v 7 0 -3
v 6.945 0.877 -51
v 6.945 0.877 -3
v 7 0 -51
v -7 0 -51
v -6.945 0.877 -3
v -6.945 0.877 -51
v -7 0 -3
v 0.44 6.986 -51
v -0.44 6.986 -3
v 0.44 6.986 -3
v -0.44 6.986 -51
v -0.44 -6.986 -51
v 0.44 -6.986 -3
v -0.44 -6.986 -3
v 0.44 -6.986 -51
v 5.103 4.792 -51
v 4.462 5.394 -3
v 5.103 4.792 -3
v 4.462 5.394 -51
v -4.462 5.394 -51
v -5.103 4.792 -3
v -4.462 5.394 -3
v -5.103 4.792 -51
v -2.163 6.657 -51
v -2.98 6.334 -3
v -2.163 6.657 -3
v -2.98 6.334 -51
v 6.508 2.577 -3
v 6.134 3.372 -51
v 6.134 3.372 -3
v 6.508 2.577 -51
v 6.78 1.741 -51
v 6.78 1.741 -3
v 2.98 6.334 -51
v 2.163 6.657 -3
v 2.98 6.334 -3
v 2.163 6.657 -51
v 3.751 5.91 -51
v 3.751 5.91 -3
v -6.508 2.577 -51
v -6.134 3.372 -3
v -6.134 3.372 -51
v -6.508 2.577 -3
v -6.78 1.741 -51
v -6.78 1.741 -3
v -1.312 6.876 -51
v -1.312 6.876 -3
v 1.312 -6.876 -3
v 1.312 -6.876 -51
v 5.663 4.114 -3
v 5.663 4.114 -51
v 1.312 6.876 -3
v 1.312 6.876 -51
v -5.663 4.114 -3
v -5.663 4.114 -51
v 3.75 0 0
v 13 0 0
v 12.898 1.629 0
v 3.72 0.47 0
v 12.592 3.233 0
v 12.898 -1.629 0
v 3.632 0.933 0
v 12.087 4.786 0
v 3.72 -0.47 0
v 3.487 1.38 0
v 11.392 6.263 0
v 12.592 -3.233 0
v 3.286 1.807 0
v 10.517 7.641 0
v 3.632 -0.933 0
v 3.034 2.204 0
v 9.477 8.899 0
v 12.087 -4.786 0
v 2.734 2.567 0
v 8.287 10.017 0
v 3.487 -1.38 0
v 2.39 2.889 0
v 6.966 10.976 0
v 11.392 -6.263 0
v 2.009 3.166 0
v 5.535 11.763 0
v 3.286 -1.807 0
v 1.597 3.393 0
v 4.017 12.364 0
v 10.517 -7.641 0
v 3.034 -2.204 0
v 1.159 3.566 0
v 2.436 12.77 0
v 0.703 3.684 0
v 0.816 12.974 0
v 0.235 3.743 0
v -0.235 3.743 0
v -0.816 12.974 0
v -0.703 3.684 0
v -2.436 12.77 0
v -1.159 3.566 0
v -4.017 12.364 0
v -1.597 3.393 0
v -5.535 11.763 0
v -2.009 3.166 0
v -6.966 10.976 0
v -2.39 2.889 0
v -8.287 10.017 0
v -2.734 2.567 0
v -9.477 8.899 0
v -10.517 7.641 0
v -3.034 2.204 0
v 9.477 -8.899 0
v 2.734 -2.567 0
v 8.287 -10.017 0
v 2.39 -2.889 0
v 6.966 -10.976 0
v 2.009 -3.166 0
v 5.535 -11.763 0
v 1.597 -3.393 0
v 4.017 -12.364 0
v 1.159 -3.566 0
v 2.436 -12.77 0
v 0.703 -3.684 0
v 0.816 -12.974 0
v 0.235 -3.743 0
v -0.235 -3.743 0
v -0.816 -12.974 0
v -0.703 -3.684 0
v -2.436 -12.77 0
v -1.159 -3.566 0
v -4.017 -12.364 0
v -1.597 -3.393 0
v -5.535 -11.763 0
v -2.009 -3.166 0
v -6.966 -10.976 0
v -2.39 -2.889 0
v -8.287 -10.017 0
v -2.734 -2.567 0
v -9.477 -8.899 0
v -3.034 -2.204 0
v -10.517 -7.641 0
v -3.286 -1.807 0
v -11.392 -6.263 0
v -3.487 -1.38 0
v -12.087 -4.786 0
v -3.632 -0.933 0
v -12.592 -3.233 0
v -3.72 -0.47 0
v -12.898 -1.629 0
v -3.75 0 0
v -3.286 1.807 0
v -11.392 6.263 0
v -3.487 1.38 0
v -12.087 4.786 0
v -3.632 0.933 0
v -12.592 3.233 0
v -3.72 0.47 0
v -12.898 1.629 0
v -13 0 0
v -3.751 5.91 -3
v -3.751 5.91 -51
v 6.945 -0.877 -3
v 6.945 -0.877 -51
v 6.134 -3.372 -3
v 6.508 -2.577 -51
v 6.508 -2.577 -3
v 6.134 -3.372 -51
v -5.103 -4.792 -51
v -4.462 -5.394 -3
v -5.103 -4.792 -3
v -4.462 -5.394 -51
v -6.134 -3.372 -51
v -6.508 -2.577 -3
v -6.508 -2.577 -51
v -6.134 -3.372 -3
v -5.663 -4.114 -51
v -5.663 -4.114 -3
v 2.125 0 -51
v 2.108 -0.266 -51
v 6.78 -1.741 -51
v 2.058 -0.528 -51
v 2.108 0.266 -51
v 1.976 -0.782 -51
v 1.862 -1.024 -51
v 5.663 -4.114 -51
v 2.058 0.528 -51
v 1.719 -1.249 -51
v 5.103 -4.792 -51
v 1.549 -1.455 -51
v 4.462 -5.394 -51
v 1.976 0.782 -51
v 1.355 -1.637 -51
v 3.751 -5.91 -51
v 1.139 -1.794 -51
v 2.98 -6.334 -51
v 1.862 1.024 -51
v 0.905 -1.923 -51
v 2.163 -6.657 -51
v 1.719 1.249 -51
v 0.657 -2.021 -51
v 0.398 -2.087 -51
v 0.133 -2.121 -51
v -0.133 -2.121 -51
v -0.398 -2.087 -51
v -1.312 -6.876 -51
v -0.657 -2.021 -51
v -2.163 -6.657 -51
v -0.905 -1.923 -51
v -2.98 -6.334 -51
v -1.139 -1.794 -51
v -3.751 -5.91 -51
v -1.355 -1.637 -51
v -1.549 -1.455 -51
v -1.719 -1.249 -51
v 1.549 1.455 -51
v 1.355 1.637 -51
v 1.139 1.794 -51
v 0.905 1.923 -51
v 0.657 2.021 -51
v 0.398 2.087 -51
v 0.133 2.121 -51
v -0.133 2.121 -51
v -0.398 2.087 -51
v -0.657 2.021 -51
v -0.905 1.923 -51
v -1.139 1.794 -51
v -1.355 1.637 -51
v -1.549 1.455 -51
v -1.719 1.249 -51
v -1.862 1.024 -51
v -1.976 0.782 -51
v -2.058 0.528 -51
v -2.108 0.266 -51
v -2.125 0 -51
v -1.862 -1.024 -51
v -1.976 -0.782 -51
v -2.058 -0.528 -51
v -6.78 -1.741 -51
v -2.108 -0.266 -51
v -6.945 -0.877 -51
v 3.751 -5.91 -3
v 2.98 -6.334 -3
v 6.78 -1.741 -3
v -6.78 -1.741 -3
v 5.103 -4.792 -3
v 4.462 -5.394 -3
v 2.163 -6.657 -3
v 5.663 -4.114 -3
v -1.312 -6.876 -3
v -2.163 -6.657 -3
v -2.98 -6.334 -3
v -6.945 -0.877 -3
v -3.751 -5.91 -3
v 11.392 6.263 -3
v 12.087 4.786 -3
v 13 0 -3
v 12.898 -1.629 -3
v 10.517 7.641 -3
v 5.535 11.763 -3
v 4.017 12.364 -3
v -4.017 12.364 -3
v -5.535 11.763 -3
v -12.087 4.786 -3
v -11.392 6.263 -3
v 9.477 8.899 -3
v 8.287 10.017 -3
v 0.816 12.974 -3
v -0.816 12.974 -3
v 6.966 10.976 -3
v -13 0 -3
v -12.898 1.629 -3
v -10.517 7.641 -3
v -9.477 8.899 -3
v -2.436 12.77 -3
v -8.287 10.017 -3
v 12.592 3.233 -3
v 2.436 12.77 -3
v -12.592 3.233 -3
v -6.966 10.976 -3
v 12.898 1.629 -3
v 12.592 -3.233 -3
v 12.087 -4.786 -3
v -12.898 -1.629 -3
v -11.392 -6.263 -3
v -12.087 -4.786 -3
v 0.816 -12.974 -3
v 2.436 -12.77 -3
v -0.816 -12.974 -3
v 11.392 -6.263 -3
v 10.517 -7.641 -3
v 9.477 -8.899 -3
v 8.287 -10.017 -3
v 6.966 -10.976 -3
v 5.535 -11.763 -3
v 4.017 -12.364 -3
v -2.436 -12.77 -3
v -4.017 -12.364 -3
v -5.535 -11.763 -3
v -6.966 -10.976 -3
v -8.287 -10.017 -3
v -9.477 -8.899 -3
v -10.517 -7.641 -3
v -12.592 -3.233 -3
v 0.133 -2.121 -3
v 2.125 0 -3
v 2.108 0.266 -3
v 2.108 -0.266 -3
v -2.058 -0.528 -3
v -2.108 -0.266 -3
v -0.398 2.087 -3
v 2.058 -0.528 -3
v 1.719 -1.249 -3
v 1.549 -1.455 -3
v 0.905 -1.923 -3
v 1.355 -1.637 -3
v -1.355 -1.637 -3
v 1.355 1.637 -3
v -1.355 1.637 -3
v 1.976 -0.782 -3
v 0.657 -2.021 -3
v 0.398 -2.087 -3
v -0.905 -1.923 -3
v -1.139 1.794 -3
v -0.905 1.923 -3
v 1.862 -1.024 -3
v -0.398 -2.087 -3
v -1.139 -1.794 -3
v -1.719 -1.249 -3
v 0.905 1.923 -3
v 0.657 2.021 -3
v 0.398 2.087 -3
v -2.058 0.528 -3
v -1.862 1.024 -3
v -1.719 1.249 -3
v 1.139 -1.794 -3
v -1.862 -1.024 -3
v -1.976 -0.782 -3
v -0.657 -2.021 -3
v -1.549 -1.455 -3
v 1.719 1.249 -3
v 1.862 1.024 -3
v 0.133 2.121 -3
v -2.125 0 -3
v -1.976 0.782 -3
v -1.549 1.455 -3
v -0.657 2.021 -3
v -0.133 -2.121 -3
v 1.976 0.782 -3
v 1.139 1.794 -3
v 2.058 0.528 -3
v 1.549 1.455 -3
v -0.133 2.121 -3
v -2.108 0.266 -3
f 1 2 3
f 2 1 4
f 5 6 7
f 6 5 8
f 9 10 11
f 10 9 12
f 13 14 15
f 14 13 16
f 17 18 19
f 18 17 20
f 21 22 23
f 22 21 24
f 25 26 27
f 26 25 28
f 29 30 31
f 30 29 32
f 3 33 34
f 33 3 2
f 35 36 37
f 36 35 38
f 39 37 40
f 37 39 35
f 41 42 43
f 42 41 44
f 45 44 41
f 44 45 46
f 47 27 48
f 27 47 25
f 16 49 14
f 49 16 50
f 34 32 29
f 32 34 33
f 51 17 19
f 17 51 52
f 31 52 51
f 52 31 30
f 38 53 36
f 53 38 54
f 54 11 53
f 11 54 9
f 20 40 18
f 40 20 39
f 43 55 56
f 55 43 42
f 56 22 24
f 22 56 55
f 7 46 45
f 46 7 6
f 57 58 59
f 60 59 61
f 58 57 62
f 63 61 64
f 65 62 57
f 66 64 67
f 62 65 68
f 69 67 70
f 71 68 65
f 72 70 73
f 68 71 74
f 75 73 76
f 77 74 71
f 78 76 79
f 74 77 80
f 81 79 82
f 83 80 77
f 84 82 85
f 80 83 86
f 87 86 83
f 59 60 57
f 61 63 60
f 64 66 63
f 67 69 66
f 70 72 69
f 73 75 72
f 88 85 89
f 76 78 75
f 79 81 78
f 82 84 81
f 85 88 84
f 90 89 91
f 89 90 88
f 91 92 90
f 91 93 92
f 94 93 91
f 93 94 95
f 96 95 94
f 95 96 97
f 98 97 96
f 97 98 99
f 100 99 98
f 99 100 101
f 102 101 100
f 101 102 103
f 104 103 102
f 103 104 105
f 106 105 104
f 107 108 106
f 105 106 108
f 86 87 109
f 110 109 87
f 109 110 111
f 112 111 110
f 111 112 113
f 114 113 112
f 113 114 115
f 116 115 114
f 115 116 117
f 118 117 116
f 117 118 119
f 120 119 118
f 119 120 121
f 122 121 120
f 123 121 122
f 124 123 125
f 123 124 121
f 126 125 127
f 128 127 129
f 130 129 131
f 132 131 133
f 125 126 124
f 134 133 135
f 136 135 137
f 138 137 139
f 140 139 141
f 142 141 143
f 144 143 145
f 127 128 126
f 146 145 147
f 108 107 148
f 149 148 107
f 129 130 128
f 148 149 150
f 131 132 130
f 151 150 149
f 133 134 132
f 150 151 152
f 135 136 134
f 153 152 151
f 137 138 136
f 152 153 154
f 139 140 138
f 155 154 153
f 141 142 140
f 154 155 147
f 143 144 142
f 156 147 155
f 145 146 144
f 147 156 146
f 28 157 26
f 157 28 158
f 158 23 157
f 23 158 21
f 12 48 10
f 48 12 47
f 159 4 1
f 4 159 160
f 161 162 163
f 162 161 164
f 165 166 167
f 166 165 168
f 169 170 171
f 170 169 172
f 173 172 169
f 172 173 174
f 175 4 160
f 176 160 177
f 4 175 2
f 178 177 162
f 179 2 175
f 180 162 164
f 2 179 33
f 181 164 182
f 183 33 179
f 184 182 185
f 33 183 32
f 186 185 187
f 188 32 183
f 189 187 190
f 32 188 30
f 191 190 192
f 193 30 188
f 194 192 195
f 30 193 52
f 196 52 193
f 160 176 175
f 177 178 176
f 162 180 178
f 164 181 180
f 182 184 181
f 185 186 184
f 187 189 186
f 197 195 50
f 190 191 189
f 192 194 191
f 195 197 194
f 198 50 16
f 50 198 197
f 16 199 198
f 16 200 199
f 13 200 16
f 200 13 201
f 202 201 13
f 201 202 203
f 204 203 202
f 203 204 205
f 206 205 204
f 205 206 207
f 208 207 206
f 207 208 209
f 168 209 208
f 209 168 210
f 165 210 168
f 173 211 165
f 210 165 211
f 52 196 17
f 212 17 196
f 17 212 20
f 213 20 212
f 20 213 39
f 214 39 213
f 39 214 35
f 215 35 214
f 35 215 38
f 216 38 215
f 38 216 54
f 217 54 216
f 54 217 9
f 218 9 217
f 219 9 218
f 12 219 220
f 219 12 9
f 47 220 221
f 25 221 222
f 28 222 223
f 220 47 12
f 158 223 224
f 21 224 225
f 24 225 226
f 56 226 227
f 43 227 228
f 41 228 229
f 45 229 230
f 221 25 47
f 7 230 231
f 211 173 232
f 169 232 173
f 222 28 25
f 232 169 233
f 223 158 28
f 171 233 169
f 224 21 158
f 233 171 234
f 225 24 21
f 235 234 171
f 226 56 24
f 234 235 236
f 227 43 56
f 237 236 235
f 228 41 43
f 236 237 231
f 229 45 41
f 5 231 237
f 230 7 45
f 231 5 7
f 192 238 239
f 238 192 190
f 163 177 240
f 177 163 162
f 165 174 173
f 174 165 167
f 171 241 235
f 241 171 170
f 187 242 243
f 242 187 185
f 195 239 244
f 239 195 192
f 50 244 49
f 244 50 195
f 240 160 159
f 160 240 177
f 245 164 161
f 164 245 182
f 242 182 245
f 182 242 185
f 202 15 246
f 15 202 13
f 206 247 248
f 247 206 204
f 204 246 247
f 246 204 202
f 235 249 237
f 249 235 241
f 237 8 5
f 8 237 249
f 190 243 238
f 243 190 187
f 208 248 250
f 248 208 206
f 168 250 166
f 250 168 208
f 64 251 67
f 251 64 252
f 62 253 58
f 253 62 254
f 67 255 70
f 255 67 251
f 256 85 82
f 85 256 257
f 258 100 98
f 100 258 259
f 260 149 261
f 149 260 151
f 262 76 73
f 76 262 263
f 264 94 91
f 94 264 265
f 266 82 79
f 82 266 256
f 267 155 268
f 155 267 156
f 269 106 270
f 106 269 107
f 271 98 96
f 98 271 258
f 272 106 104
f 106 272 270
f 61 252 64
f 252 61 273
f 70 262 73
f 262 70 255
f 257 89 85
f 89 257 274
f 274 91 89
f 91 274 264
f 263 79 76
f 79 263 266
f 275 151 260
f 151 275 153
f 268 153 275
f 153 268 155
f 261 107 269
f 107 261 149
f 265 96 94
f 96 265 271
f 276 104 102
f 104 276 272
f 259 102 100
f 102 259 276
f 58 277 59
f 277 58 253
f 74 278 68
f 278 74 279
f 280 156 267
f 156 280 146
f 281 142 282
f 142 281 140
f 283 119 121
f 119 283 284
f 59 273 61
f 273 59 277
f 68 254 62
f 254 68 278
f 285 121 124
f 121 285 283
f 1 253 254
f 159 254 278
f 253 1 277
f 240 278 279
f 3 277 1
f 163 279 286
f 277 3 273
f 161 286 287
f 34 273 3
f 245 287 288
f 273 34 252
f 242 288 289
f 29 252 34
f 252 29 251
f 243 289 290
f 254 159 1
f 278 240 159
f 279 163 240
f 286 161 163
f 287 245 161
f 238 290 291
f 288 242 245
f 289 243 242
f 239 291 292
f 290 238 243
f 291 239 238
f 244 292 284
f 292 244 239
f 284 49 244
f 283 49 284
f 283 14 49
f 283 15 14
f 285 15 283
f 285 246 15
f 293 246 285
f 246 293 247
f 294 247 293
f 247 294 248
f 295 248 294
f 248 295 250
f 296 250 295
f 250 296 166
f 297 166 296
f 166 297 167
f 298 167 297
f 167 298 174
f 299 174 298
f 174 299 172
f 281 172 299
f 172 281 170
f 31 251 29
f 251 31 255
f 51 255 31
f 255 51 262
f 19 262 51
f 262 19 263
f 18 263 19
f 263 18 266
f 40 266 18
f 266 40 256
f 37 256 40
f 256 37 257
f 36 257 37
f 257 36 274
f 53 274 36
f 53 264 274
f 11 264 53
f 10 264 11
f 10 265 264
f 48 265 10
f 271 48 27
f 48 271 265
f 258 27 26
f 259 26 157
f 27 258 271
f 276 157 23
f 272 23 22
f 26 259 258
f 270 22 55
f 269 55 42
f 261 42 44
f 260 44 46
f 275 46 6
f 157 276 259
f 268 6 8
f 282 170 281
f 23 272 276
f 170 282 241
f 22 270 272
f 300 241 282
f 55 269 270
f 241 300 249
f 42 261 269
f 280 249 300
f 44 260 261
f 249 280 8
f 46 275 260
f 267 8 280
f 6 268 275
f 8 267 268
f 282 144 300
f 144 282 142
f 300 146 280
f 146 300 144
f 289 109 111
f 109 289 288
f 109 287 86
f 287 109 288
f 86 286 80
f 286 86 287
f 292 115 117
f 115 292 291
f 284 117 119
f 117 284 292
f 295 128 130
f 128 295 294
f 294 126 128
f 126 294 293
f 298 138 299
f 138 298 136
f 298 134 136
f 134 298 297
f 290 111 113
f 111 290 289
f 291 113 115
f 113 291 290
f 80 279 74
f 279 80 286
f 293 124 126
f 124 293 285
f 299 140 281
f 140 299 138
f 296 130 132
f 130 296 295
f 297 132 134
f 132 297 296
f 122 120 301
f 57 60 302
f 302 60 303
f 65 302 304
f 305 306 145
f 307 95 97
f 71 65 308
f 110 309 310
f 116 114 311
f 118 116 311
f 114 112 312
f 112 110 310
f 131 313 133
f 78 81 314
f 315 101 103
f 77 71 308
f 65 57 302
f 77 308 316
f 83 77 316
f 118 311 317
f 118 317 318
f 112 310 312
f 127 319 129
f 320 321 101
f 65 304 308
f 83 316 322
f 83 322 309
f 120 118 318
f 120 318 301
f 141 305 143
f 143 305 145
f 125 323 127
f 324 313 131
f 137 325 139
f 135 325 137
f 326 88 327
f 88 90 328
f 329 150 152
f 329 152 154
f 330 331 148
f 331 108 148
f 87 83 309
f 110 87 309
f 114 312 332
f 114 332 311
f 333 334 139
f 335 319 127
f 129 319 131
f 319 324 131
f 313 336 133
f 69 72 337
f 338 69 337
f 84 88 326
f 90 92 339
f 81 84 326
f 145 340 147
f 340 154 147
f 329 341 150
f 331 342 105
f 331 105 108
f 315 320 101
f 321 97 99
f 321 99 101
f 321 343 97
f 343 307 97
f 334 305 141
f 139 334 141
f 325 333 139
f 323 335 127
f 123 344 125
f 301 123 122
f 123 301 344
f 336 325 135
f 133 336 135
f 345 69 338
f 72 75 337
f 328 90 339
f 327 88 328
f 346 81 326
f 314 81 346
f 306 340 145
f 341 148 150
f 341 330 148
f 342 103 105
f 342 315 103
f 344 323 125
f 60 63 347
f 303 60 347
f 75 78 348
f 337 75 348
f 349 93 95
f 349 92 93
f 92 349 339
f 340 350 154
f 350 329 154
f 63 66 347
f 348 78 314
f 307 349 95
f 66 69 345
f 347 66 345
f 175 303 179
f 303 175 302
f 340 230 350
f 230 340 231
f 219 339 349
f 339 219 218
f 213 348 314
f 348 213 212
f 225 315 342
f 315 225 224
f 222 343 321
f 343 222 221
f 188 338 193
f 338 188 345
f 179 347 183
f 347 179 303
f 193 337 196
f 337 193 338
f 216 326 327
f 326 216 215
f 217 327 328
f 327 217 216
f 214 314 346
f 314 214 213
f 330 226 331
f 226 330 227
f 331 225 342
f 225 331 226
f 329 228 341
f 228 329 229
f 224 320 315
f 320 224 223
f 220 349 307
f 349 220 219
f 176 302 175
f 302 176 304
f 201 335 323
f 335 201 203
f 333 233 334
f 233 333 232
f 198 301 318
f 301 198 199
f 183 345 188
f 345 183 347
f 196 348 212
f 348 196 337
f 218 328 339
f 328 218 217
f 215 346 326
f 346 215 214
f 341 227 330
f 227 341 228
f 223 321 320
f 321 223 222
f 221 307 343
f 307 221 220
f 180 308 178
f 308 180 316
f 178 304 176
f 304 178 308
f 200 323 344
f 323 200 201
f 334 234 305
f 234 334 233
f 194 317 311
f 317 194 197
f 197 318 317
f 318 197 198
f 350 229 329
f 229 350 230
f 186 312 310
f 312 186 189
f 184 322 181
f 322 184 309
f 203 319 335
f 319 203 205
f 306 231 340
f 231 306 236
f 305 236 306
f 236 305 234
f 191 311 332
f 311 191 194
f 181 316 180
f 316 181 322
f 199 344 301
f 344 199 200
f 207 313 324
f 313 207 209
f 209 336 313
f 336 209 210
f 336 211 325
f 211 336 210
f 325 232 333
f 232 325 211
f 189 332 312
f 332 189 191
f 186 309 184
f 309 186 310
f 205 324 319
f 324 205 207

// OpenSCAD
$fn = 50;


difference() {
	union() {
		translate(v = [0, 0, -51.0000000000]) {
			cylinder(h = 51, r = 7.0000000000);
		}
		translate(v = [0, 0, -3.0000000000]) {
			cylinder(h = 3, r = 13.0000000000);
		}
	}
	union() {
		translate(v = [0, 0, 0]) {
			rotate(a = [0, 0, 0]) {
				difference() {
					union() {
						#translate(v = [0, 0, -51.0000000000]) {
							cylinder(h = 51, r = 2.0000000000);
						}
						#translate(v = [0, 0, -3]) {
							cylinder(h = 3, r = 7.0000000000, r1 = 2.1250000000, r2 = 3.7500000000);
						}
						#translate(v = [0, 0, -51.0000000000]) {
							cylinder(h = 51, r = 2.1250000000);
						}
						#translate(v = [0, 0, -51.0000000000]) {
							cylinder(h = 51, r = 2.0000000000);
						}
					}
					union();
				}
			}
		}
	}
}
